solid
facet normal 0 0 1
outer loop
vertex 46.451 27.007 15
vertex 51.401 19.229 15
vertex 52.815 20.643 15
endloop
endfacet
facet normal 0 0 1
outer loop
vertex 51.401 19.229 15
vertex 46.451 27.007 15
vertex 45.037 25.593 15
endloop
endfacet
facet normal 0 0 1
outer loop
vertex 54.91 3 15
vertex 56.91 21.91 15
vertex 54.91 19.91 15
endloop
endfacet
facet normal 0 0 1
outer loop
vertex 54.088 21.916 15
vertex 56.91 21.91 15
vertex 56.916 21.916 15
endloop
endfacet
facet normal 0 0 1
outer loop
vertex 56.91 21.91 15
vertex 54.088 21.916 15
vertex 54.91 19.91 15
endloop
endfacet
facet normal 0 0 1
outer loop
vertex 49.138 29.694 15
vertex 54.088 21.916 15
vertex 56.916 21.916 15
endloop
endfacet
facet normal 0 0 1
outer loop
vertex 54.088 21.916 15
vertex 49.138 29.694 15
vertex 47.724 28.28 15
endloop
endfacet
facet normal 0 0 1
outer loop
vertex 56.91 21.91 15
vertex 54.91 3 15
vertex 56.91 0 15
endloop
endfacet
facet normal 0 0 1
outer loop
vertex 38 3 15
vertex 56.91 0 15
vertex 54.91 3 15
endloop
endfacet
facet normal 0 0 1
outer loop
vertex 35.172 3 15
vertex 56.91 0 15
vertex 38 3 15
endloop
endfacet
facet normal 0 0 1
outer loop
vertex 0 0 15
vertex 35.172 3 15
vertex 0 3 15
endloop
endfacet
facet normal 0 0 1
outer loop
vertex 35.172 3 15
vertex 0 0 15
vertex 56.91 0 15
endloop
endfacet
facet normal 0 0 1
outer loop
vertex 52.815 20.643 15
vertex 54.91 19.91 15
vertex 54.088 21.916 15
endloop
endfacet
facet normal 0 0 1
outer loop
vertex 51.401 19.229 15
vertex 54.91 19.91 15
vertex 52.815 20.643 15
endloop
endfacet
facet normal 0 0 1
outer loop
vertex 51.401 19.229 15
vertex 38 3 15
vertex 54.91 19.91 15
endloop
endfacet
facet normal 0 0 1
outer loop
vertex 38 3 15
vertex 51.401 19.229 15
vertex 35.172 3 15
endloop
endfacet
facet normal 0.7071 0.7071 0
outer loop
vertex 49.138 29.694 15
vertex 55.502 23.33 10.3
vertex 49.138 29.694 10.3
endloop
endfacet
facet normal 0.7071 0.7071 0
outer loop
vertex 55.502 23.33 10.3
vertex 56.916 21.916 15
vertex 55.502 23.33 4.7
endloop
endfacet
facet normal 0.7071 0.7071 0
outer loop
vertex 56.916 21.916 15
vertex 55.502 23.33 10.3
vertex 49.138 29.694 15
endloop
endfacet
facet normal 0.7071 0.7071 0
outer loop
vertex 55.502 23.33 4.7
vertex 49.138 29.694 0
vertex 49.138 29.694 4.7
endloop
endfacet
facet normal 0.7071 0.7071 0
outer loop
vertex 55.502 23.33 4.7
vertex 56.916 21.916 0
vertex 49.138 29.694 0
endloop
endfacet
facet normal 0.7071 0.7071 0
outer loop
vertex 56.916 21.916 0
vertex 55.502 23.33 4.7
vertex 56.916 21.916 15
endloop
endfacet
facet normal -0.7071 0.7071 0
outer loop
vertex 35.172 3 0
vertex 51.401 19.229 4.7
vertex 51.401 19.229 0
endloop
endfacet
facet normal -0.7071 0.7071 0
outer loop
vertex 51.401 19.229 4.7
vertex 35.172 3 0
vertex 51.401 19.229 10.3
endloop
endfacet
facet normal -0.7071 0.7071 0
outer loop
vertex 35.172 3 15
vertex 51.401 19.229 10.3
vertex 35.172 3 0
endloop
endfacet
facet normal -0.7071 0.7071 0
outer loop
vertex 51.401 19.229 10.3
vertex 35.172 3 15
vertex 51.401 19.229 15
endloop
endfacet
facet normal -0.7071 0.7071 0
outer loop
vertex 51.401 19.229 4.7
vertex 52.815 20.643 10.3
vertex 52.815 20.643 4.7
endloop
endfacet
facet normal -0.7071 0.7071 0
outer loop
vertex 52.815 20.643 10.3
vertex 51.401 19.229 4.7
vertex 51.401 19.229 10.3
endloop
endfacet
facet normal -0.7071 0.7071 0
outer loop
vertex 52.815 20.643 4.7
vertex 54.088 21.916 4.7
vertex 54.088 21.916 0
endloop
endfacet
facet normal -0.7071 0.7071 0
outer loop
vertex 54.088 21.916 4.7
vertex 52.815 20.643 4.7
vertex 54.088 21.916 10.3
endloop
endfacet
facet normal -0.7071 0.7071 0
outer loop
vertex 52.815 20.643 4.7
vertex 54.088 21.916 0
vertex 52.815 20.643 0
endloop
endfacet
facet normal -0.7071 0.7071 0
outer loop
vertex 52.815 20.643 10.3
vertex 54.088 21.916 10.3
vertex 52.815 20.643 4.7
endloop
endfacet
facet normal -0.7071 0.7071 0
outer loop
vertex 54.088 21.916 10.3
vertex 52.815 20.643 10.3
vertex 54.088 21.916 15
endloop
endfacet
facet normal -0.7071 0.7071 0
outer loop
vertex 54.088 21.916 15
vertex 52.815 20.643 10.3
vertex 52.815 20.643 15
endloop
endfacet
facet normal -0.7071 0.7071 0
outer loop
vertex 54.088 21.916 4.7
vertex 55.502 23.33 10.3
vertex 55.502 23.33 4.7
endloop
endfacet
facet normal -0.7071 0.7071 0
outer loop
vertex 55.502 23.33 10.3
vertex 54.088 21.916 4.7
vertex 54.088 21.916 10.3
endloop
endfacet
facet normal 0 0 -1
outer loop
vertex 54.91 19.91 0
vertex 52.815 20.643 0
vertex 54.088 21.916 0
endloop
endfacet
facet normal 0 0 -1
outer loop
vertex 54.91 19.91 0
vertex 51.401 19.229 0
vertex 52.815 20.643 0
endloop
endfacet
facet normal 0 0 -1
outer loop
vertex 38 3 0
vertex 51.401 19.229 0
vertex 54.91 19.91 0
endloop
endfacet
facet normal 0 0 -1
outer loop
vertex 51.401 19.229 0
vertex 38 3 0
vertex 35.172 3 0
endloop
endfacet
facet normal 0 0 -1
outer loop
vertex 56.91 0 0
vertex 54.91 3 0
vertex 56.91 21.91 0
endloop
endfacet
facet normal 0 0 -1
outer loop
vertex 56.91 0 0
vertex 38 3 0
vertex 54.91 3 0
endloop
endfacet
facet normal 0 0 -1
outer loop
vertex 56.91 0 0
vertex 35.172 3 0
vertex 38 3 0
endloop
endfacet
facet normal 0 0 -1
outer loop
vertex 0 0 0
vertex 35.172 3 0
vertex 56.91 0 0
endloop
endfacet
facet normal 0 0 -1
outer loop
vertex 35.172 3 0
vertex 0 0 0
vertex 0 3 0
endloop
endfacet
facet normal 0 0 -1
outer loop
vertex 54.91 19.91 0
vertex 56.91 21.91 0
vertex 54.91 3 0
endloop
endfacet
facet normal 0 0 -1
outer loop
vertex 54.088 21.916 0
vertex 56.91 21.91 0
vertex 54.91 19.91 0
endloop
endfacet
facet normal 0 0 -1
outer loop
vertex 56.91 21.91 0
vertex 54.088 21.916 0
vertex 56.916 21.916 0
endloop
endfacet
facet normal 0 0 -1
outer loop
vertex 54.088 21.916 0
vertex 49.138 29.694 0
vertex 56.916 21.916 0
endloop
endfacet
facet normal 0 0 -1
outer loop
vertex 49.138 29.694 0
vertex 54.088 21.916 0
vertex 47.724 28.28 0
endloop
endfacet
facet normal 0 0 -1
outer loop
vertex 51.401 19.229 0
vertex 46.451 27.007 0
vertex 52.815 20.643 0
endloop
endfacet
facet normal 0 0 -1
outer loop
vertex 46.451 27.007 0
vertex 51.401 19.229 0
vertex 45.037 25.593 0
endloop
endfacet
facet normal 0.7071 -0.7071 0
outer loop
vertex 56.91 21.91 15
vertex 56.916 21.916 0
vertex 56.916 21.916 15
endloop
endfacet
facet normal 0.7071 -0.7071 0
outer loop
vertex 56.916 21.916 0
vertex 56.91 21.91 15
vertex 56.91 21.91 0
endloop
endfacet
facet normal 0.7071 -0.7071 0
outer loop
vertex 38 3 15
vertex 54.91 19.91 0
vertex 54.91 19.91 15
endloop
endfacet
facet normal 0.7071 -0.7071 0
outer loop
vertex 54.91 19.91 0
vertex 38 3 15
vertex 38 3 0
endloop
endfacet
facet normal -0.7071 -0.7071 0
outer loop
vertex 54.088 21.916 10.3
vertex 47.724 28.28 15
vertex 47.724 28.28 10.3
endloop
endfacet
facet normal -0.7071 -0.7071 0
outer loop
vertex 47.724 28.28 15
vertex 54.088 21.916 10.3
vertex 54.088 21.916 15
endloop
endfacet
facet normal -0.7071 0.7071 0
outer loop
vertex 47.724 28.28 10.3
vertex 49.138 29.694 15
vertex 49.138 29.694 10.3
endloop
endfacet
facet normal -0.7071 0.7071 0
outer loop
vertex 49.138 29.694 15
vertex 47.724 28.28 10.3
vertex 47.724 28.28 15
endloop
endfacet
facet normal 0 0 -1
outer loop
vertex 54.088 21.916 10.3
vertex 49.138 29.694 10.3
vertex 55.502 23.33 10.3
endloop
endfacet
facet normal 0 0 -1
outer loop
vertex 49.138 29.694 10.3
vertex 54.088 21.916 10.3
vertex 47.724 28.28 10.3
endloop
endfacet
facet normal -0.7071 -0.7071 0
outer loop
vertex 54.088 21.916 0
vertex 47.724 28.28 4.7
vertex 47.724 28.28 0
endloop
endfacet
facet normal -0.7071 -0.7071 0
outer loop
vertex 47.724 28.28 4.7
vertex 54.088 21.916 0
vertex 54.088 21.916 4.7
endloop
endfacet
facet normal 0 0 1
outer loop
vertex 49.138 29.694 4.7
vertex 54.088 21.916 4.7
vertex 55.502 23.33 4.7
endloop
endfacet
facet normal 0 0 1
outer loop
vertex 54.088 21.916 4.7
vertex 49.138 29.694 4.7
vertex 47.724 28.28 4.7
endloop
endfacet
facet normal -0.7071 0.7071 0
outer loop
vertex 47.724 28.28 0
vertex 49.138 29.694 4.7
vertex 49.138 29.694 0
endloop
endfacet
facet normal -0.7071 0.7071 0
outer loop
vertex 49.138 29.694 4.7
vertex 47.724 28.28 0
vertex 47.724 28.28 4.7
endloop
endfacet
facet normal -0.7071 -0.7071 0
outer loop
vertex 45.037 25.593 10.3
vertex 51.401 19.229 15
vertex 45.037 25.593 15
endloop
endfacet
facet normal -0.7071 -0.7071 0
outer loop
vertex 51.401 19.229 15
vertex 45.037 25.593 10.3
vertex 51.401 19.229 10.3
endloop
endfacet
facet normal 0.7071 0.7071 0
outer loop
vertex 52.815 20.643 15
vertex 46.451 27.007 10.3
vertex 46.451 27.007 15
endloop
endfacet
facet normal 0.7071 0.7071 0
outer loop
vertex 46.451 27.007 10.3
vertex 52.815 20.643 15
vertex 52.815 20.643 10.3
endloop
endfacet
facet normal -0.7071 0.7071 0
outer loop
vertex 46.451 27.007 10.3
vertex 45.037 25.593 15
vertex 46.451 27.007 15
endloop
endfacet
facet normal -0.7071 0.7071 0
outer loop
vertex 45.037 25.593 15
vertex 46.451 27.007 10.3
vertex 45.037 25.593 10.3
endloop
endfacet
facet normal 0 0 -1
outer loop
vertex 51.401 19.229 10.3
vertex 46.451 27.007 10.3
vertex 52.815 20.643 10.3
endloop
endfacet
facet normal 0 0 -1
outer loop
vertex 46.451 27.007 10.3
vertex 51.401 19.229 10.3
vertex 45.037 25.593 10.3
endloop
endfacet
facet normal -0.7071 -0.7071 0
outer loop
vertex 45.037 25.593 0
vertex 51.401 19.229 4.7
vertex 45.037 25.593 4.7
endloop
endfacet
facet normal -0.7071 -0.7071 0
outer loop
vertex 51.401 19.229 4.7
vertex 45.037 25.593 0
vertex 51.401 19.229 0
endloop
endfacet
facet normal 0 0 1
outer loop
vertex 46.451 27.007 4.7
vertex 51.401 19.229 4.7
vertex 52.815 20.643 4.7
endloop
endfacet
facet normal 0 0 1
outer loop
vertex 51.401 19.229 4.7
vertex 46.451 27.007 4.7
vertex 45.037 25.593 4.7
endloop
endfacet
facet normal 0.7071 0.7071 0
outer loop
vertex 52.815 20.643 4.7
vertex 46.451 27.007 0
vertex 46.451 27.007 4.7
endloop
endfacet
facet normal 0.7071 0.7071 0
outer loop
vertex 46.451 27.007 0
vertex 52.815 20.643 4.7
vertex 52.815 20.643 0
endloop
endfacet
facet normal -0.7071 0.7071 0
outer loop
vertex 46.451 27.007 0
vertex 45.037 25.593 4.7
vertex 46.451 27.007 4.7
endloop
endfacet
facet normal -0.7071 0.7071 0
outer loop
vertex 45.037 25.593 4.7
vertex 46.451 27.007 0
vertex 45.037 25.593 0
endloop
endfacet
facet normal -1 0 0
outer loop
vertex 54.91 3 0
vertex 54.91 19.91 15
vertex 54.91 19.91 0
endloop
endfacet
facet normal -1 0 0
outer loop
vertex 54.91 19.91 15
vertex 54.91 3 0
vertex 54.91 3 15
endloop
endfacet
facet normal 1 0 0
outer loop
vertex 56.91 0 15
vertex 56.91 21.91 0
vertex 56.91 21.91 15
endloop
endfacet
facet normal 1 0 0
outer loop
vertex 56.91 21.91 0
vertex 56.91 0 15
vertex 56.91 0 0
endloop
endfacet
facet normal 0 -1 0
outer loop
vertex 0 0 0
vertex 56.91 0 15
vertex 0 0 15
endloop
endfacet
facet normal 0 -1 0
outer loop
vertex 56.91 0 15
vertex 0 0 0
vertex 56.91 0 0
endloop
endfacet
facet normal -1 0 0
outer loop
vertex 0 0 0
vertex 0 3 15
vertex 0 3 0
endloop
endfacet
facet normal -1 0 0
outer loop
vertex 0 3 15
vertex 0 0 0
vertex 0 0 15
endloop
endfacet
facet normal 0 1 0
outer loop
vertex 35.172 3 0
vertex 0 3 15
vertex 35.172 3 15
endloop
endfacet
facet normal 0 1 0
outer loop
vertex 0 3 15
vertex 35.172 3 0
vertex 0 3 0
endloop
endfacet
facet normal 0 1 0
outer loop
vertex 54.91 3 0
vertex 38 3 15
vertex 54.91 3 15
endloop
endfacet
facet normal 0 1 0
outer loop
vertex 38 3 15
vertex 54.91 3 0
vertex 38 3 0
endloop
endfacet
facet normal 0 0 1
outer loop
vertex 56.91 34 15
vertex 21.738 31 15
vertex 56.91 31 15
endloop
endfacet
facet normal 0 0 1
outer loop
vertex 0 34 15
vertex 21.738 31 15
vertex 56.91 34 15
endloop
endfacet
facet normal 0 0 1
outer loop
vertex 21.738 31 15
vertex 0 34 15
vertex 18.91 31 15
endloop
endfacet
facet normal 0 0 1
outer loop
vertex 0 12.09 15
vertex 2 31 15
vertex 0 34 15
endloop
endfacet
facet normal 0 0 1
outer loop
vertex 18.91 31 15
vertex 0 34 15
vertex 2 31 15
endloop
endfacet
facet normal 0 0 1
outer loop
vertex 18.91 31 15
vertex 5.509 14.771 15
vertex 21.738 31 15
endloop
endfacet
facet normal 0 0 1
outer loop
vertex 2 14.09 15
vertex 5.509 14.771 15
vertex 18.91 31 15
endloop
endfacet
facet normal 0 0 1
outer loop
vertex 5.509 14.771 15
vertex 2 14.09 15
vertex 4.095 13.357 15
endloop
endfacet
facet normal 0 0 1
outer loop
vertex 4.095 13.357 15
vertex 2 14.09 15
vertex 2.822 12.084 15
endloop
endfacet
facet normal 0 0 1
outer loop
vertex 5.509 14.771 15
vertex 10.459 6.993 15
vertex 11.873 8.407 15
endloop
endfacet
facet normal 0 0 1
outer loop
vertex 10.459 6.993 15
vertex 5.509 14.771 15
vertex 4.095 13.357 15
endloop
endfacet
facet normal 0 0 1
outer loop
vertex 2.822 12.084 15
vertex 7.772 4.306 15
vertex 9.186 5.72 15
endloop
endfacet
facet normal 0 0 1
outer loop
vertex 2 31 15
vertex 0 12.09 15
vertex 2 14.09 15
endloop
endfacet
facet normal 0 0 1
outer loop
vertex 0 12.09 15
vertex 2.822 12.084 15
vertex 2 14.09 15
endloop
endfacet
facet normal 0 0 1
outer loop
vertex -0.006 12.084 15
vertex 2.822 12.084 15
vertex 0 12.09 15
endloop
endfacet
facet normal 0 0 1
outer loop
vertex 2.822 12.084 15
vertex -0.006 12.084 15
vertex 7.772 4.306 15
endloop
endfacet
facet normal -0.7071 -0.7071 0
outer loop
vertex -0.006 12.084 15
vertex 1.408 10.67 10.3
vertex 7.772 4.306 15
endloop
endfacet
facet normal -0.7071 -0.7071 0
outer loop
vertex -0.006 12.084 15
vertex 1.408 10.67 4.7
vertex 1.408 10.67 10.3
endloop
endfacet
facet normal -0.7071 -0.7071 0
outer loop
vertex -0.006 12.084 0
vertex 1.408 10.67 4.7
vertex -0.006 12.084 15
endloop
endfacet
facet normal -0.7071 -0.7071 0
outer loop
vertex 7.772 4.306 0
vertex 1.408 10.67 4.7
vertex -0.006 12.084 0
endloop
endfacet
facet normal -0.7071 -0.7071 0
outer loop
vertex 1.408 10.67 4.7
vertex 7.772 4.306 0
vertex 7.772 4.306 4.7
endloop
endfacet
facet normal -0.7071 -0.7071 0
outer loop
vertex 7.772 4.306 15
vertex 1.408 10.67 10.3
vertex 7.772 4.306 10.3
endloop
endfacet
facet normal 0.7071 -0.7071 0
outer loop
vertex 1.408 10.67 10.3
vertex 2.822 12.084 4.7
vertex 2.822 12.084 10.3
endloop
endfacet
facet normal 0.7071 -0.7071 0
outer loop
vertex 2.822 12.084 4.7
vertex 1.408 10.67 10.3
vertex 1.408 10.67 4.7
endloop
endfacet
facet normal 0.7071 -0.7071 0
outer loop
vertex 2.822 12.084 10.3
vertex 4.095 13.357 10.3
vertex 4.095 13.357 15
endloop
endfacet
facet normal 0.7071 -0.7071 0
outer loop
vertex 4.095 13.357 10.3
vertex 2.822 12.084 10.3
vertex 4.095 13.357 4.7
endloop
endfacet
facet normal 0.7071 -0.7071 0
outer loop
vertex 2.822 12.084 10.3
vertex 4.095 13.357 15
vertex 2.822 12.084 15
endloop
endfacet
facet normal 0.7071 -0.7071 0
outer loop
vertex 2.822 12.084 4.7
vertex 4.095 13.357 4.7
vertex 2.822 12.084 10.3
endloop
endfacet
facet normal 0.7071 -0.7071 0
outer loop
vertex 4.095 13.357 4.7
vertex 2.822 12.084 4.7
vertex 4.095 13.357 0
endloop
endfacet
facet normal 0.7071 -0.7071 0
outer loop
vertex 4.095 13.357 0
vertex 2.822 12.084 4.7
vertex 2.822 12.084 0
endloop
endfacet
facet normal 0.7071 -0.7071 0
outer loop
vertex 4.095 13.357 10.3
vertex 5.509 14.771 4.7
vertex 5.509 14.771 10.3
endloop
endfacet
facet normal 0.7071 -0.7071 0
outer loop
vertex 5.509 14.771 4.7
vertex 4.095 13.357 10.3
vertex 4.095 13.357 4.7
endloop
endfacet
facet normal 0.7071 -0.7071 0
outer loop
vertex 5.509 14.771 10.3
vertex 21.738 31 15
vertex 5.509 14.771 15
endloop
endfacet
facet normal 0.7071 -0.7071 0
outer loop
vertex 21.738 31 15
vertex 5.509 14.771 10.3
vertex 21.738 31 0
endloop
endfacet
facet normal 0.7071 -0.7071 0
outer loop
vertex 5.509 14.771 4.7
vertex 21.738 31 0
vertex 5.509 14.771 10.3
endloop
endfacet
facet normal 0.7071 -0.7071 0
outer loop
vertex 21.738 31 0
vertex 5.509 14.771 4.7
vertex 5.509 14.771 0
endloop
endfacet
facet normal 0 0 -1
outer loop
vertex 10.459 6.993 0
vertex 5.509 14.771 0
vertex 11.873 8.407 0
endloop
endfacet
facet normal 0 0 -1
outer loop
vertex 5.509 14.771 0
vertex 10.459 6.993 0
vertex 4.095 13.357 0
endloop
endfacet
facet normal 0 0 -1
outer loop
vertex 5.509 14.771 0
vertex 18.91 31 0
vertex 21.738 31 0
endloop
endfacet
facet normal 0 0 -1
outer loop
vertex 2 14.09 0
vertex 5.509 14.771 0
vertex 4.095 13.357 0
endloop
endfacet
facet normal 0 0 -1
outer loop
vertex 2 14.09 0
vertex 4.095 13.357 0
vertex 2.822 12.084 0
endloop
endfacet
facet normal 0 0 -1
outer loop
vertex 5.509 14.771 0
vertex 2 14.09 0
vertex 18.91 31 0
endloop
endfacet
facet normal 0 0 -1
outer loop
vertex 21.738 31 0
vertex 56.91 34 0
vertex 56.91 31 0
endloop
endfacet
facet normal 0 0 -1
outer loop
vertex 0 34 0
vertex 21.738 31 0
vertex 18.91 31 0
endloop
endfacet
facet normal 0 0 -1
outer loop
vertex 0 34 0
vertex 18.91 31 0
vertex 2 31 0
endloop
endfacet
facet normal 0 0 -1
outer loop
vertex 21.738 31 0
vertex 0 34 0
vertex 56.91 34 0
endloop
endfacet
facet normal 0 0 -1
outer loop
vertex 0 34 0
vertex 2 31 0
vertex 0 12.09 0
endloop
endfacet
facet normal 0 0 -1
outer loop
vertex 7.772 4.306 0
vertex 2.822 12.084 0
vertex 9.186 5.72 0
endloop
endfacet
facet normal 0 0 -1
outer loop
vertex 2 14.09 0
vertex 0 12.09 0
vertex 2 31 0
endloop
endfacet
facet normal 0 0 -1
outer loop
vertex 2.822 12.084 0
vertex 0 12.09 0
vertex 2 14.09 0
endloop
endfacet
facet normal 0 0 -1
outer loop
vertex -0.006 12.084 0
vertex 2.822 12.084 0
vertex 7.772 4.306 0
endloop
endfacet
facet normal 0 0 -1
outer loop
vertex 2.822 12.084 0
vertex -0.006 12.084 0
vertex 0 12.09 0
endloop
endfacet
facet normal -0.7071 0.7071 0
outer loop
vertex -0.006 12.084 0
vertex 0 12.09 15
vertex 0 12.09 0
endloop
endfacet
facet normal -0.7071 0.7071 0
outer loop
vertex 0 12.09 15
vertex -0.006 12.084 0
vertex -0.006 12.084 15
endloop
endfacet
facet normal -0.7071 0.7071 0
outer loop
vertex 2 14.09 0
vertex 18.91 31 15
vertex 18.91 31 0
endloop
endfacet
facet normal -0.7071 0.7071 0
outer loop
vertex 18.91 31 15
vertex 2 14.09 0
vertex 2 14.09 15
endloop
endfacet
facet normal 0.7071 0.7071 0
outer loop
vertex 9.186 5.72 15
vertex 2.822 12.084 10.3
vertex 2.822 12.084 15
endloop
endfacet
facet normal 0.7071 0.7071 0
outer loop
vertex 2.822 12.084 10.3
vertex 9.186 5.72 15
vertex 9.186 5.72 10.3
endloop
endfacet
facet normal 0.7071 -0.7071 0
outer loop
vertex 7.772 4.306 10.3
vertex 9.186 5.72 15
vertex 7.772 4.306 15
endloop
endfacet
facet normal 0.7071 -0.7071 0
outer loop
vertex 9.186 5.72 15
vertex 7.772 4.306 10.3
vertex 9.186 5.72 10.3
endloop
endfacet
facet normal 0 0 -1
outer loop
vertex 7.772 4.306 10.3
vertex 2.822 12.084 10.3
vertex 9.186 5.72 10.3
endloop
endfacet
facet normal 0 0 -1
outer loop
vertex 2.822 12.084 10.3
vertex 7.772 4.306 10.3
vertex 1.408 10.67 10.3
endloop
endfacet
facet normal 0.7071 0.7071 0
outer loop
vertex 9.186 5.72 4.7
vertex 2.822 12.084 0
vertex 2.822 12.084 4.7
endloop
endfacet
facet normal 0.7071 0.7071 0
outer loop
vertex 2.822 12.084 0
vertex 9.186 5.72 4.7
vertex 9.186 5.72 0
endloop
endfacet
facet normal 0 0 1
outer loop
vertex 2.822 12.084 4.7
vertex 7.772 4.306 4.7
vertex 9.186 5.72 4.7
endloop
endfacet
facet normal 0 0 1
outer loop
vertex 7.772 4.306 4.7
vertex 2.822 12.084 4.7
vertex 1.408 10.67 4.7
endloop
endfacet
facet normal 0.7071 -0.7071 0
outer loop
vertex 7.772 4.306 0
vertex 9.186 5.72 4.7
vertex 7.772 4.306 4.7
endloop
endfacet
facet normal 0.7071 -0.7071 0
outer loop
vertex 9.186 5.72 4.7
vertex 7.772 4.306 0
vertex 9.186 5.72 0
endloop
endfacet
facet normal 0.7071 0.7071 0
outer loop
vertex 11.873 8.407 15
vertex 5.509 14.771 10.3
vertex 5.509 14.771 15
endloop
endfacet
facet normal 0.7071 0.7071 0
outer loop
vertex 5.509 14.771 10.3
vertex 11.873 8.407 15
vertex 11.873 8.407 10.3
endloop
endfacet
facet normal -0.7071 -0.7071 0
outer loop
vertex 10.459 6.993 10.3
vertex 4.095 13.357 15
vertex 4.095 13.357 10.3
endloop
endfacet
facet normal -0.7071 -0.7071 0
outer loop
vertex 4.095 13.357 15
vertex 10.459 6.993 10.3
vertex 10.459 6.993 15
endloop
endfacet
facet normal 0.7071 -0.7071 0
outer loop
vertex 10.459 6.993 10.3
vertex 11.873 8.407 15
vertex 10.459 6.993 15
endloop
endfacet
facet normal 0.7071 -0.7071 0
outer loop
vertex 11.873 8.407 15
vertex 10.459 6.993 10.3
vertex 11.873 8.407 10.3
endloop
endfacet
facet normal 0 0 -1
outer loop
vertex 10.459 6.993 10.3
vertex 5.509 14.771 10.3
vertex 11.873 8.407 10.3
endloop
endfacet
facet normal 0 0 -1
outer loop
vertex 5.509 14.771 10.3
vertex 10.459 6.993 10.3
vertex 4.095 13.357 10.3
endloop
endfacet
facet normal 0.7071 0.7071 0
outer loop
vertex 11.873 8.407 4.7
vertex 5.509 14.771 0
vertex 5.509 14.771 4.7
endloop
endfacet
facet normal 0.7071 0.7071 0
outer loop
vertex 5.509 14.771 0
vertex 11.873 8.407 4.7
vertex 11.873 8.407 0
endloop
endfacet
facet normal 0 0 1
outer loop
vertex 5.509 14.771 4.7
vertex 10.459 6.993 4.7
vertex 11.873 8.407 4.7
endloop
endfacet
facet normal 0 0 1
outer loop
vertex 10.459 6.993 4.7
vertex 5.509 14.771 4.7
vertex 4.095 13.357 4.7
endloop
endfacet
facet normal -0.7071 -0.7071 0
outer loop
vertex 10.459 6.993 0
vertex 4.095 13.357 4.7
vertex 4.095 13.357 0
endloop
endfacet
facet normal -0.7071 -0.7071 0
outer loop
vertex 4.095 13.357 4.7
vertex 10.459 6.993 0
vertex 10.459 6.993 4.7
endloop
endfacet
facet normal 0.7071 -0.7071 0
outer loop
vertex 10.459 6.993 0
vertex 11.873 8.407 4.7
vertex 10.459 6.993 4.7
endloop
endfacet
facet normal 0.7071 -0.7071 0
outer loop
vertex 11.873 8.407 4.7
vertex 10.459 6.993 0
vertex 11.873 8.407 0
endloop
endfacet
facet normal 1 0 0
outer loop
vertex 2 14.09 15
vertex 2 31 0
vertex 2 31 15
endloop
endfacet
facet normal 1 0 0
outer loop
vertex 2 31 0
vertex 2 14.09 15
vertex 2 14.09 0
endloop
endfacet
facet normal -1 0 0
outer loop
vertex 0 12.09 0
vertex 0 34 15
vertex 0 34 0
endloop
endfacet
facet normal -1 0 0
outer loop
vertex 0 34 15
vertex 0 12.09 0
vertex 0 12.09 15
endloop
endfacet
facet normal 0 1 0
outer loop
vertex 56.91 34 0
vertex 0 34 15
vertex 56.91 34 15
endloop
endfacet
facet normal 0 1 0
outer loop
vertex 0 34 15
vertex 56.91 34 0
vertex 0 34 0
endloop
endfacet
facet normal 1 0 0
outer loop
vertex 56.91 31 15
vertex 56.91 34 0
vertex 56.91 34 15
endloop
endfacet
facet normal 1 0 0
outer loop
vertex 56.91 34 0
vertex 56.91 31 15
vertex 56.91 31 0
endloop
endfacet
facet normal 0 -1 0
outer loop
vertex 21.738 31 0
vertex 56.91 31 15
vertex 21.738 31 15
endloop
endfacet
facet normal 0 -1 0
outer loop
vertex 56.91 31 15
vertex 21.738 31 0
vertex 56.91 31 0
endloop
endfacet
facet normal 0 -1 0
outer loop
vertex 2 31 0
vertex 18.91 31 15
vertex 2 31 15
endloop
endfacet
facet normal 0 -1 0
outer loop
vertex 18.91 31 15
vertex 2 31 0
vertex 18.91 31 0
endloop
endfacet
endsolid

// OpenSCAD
/**
  *  The MIT License (MIT)
  *
  *  Slave Nixie Clock - Copyright (c) 2017 SebiTimeWaster
  *
  *  Permission is hereby granted, free of charge, to any person obtaining a copy
  *  of this software and associated documentation files (the "Software"), to deal
  *  in the Software without restriction, including without limitation the rights
  *  to use, copy, modify, merge, publish, distribute, sublicense, and/or sell
  *  copies of the Software, and to permit persons to whom the Software is
  *  furnished to do so, subject to the following conditions:
  *
  *  The above copyright notice and this permission notice shall be included in all
  *  copies or substantial portions of the Software.
  *
  *  THE SOFTWARE IS PROVIDED "AS IS", WITHOUT WARRANTY OF ANY KIND, EXPRESS OR
  *  IMPLIED, INCLUDING BUT NOT LIMITED TO THE WARRANTIES OF MERCHANTABILITY,
  *  FITNESS FOR A PARTICULAR PURPOSE AND NONINFRINGEMENT. IN NO EVENT SHALL THE
  *  AUTHORS OR COPYRIGHT HOLDERS BE LIABLE FOR ANY CLAIM, DAMAGES OR OTHER
  *  LIABILITY, WHETHER IN AN ACTION OF CONTRACT, TORT OR OTHERWISE, ARISING FROM,
  *  OUT OF OR IN CONNECTION WITH THE SOFTWARE OR THE USE OR OTHER DEALINGS IN THE
  *  SOFTWARE.
  */

module holder() {
    translate([36.41, 1.41, 0]) rotate([0, 0, 45]) {
                                   cube([29, 2, 15]);  // 45° beam
        translate([27,   2, 10.3]) cube([2,  9, 4.7]); // left upper finger
        translate([27,   2, 0])    cube([2,  9, 4.7]); // right upper finger
        translate([23.2, 2, 10.3]) cube([2,  9, 4.7]); // left lower finger
        translate([23.2, 2, 0])    cube([2,  9, 4.7]); // right lower finger
    }
    translate([54.91, 0, 0]) cube([2,     21.91, 15]); // vertical beam
                             cube([56.91, 3,     15]); // base
}

holder();
translate([56.91, 34, 0]) rotate([0, 0, 180]) holder();
